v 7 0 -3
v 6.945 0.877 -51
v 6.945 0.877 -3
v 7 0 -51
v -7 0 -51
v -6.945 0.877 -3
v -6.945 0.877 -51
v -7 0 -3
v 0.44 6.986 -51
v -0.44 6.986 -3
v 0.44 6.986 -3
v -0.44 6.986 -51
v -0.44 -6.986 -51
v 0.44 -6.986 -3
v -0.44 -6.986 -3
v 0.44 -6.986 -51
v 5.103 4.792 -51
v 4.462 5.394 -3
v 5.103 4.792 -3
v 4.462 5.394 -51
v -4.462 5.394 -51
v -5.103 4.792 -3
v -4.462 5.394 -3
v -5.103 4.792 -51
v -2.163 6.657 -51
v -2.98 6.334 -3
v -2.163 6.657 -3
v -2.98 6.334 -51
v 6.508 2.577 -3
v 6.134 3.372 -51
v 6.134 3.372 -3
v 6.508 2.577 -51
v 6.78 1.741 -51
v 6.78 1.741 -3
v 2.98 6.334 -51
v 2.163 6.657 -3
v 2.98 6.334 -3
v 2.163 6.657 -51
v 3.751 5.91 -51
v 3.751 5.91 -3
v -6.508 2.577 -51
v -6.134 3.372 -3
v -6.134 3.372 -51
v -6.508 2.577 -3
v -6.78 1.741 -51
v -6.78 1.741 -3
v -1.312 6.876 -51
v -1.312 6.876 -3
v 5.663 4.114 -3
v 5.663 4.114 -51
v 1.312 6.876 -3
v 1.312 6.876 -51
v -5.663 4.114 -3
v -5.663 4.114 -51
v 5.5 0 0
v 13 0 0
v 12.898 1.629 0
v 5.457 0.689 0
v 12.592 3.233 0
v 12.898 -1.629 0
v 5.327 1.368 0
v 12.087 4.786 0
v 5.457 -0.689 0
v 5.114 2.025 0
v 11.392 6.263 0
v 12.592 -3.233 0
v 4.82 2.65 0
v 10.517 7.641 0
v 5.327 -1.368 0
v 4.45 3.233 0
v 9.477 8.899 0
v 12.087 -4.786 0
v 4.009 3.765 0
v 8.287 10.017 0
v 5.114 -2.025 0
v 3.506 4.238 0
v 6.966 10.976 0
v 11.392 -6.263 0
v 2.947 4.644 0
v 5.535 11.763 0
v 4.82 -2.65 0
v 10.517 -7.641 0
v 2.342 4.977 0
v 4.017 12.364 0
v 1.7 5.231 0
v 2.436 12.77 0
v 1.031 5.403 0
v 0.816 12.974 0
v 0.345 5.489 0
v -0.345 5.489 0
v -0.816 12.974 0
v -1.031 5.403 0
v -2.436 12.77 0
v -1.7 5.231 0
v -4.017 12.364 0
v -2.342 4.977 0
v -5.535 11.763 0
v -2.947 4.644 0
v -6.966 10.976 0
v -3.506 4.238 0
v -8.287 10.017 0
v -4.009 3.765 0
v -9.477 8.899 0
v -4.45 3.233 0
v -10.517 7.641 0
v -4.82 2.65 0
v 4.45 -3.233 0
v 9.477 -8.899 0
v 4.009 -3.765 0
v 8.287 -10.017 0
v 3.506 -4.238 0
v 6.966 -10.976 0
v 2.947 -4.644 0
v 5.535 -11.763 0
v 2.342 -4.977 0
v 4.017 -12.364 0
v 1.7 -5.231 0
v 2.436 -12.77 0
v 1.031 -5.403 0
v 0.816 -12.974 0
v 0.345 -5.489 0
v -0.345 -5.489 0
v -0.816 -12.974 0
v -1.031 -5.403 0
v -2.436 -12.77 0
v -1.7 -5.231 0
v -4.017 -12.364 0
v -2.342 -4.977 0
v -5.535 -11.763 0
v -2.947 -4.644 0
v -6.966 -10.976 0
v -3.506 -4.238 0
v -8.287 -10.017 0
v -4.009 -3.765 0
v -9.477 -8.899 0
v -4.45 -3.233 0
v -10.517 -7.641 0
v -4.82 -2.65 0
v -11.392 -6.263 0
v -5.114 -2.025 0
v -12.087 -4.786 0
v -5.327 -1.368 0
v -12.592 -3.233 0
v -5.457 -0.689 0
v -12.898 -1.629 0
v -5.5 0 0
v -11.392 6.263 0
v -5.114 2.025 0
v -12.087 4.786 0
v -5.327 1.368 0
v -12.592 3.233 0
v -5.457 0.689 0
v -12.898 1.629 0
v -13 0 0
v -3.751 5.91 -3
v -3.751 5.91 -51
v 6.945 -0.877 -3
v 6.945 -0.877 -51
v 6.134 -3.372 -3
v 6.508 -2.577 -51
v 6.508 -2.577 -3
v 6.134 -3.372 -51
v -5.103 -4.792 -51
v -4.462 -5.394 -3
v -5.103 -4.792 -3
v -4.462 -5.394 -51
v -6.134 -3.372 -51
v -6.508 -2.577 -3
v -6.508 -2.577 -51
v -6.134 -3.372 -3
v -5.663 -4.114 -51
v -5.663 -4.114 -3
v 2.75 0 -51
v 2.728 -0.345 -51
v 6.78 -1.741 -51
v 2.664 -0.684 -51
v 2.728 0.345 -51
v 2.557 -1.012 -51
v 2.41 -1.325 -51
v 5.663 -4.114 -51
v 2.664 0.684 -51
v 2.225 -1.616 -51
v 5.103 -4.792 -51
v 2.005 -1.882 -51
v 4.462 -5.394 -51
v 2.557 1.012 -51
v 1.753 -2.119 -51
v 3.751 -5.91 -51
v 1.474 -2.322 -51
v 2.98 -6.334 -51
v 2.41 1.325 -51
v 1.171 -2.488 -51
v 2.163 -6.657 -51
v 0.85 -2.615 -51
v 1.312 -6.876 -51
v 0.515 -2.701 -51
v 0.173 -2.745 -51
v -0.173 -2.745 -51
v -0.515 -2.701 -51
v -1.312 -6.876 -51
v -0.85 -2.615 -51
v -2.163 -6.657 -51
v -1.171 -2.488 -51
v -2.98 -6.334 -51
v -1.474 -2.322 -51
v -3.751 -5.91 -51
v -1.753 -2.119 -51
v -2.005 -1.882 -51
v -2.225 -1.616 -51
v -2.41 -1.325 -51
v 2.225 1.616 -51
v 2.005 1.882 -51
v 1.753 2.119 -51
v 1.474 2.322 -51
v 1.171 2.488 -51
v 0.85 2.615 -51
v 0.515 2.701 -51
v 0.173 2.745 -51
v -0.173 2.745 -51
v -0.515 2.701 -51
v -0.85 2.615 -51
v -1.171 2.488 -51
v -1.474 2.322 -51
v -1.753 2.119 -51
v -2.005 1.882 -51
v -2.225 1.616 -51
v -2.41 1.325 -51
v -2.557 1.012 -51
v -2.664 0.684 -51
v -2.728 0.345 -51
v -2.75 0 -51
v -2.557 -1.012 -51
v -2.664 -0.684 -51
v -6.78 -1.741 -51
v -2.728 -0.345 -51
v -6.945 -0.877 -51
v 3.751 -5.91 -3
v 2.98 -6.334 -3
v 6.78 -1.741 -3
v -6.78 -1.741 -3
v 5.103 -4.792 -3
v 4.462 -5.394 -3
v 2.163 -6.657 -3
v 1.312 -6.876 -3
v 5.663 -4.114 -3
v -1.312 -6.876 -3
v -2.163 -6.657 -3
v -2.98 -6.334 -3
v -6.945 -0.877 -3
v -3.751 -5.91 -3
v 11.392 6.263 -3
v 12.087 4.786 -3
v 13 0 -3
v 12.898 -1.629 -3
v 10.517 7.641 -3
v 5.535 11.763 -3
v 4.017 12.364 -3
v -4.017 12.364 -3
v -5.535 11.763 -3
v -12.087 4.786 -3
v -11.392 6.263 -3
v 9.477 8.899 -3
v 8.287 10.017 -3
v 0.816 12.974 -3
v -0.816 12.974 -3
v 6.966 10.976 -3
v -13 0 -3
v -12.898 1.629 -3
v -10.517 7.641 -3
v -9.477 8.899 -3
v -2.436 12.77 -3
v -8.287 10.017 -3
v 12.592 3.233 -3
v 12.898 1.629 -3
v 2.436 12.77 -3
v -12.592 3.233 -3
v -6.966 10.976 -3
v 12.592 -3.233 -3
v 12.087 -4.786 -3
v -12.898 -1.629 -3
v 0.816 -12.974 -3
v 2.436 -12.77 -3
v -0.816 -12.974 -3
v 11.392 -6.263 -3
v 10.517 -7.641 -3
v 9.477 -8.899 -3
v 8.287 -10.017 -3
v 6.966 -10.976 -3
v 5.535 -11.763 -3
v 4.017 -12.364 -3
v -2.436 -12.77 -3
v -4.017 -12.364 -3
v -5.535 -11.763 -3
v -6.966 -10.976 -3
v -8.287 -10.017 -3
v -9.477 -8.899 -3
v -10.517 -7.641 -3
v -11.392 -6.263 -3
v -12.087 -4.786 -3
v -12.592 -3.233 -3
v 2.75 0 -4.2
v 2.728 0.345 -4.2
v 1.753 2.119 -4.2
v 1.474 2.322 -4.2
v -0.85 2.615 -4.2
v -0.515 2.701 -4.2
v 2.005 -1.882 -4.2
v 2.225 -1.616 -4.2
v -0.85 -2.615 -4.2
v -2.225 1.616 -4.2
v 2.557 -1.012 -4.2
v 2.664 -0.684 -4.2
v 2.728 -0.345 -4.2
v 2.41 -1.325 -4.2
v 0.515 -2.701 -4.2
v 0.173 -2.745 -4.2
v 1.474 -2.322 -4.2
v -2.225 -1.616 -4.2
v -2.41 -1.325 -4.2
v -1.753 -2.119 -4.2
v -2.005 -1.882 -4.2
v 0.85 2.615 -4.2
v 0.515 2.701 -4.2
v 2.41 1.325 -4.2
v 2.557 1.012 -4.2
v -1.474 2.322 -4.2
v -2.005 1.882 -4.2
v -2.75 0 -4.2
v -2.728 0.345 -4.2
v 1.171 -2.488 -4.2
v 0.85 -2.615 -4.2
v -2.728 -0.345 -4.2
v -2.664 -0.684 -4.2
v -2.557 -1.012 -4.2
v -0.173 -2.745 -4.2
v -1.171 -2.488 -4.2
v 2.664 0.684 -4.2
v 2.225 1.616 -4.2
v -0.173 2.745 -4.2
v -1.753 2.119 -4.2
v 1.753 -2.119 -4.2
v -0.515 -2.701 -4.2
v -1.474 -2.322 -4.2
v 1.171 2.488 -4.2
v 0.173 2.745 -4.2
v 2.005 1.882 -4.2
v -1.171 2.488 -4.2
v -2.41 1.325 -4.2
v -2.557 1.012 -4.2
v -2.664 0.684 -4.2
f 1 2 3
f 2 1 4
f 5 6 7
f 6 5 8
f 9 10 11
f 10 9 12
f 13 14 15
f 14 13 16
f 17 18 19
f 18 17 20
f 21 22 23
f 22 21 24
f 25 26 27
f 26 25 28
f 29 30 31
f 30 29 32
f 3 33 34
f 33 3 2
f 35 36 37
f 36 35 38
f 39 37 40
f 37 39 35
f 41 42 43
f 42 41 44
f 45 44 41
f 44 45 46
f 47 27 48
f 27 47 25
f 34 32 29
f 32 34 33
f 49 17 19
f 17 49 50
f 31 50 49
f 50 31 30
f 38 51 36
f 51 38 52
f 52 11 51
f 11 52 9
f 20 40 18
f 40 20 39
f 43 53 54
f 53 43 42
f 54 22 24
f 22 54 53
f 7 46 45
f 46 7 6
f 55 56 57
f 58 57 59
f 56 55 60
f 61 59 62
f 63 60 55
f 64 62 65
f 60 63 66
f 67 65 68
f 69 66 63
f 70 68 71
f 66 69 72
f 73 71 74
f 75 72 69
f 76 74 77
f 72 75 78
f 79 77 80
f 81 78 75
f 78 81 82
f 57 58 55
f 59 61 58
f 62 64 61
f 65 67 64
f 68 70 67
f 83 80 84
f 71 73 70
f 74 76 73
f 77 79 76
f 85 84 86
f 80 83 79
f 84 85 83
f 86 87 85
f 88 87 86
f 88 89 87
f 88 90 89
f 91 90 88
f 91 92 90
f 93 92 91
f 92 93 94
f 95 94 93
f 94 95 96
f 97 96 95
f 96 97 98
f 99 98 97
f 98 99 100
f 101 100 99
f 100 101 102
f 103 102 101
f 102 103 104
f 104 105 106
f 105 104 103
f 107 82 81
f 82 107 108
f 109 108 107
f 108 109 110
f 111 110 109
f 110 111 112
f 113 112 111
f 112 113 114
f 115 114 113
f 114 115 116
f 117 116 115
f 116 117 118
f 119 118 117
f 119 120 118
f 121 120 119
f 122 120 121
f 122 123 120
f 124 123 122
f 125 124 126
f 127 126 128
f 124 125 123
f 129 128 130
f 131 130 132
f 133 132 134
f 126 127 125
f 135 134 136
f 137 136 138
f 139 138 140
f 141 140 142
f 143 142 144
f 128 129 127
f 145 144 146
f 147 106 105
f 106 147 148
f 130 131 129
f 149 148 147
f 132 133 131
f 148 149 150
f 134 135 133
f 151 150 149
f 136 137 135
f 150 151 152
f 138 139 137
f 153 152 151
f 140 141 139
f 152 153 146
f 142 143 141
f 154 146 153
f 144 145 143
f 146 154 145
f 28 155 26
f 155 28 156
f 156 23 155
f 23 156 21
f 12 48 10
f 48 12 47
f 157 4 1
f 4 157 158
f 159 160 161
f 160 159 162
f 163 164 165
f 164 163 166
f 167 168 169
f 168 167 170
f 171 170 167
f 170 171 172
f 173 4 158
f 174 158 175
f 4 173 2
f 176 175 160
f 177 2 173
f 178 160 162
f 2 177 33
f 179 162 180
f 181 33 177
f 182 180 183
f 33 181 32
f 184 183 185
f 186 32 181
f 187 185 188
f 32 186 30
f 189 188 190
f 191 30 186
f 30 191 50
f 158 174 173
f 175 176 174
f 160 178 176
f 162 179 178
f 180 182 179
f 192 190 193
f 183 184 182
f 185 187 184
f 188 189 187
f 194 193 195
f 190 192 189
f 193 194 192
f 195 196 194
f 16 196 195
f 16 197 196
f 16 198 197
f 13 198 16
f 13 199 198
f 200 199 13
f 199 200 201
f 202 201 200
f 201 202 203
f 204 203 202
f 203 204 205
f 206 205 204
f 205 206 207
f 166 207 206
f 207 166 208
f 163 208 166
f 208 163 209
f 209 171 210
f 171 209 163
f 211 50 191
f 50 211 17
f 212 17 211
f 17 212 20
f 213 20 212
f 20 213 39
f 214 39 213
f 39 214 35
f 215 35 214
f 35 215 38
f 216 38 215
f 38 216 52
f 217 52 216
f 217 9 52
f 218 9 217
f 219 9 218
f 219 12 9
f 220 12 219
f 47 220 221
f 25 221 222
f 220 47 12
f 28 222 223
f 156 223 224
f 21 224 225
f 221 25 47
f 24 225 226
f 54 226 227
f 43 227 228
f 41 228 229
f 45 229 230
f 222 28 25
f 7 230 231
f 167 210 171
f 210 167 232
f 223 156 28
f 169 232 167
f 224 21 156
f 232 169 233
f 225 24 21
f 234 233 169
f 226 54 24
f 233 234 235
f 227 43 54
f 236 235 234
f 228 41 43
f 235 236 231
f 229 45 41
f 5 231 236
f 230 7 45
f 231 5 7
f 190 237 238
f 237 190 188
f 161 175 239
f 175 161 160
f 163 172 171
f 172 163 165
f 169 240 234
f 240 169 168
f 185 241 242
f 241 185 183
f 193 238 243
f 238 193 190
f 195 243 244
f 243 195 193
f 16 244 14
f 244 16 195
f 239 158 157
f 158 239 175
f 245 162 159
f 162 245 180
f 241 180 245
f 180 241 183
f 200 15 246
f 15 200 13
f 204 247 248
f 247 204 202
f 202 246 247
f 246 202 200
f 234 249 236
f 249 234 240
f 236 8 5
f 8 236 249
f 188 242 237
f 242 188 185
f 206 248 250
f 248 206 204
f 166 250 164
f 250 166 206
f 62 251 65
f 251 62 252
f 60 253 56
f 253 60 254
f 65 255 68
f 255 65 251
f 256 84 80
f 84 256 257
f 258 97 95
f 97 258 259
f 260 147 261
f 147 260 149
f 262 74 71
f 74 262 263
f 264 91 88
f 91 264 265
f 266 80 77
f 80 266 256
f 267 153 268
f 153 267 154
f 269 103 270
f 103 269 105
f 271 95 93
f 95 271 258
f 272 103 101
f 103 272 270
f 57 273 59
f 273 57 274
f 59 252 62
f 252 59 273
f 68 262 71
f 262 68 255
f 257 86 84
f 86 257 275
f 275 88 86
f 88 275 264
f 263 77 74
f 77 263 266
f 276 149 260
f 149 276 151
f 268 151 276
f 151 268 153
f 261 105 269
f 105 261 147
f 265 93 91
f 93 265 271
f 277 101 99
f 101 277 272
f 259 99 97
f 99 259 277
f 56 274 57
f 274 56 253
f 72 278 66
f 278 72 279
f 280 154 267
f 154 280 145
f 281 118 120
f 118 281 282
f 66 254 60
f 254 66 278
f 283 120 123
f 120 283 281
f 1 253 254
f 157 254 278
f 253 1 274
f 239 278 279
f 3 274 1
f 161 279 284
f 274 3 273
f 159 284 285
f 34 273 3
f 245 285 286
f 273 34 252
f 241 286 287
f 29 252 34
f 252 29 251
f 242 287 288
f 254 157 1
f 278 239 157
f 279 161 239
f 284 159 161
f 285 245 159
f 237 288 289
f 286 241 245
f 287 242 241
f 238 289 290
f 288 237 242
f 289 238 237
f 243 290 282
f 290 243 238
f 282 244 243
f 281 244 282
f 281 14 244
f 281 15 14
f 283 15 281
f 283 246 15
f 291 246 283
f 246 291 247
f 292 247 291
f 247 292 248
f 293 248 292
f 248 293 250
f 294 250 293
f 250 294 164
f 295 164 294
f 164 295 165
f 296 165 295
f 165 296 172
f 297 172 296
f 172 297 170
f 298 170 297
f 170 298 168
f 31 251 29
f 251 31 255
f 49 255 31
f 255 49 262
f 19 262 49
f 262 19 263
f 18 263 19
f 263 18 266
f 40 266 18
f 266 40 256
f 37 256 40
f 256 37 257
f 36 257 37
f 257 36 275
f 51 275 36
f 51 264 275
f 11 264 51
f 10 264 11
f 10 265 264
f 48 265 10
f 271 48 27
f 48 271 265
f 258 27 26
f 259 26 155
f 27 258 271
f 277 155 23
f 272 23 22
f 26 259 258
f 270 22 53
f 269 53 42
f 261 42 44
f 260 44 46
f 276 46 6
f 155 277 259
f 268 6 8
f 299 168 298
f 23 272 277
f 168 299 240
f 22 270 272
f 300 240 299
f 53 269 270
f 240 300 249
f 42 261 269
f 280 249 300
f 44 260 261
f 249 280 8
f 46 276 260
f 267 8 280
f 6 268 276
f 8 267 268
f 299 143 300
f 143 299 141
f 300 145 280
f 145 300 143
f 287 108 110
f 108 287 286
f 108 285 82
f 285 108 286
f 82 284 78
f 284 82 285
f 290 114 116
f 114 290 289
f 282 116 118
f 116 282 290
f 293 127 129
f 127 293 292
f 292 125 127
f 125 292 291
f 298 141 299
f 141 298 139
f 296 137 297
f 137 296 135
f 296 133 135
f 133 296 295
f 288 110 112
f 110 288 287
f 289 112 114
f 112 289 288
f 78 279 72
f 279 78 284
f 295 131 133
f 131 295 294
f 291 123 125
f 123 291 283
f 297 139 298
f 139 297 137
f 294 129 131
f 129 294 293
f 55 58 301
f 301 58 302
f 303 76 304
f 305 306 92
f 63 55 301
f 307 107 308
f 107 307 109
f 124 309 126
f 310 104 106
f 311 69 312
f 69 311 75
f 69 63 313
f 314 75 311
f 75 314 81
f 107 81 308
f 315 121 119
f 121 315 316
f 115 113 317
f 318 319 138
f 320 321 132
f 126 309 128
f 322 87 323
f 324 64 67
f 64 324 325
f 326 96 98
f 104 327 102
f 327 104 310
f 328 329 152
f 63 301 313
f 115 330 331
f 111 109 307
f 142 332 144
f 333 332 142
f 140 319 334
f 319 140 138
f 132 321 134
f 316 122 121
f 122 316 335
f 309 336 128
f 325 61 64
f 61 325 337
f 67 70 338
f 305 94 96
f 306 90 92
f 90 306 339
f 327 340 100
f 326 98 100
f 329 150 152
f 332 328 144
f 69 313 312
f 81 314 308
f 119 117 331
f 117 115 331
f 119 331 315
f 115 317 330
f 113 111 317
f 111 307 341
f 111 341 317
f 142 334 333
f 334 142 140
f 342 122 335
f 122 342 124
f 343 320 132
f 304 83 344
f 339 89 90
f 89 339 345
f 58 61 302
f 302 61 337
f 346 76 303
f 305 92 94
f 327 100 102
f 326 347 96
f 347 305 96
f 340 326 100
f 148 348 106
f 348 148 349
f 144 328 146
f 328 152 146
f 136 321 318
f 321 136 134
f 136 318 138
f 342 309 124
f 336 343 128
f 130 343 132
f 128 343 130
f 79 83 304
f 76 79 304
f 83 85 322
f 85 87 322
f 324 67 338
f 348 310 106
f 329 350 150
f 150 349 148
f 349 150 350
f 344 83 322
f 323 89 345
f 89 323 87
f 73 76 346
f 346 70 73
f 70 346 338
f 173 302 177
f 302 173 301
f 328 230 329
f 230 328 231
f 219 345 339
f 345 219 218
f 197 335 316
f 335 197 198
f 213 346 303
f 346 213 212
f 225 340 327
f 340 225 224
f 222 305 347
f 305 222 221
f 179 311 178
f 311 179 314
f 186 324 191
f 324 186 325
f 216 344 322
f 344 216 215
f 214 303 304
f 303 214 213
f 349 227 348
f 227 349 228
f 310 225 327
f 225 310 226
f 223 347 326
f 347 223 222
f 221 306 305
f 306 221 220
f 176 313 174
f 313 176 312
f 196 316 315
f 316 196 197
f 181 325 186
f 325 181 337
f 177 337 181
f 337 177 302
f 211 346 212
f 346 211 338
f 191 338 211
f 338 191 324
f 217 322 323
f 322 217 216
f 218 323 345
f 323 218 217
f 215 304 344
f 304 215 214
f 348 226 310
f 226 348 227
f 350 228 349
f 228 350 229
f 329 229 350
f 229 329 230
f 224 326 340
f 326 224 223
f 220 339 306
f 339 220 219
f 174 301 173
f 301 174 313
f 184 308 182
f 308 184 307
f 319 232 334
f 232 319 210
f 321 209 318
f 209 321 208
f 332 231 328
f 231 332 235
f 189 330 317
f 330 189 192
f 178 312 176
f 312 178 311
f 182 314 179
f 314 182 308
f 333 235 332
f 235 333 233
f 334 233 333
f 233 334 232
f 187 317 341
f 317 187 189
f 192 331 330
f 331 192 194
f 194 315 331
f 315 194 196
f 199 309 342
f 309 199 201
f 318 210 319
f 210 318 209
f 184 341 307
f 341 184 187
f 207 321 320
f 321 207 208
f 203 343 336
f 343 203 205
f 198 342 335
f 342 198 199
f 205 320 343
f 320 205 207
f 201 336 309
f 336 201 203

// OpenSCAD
$fn = 50;


difference() {
	union() {
		translate(v = [0, 0, -51.0000000000]) {
			cylinder(h = 51, r = 7.0000000000);
		}
		translate(v = [0, 0, -3.0000000000]) {
			cylinder(h = 3, r = 13.0000000000);
		}
	}
	union() {
		translate(v = [0, 0, 0]) {
			rotate(a = [0, 0, 0]) {
				difference() {
					union() {
						#translate(v = [0, 0, -51.0000000000]) {
							cylinder(h = 51, r = 2.2500000000);
						}
						#translate(v = [0, 0, -4.2000000000]) {
							cylinder(h = 4.2000000000, r = 7.0000000000, r1 = 2.7500000000, r2 = 5.5000000000);
						}
						#translate(v = [0, 0, -51.0000000000]) {
							cylinder(h = 51, r = 2.7500000000);
						}
						#translate(v = [0, 0, -51.0000000000]) {
							cylinder(h = 51, r = 2.2500000000);
						}
					}
					union();
				}
			}
		}
	}
}
